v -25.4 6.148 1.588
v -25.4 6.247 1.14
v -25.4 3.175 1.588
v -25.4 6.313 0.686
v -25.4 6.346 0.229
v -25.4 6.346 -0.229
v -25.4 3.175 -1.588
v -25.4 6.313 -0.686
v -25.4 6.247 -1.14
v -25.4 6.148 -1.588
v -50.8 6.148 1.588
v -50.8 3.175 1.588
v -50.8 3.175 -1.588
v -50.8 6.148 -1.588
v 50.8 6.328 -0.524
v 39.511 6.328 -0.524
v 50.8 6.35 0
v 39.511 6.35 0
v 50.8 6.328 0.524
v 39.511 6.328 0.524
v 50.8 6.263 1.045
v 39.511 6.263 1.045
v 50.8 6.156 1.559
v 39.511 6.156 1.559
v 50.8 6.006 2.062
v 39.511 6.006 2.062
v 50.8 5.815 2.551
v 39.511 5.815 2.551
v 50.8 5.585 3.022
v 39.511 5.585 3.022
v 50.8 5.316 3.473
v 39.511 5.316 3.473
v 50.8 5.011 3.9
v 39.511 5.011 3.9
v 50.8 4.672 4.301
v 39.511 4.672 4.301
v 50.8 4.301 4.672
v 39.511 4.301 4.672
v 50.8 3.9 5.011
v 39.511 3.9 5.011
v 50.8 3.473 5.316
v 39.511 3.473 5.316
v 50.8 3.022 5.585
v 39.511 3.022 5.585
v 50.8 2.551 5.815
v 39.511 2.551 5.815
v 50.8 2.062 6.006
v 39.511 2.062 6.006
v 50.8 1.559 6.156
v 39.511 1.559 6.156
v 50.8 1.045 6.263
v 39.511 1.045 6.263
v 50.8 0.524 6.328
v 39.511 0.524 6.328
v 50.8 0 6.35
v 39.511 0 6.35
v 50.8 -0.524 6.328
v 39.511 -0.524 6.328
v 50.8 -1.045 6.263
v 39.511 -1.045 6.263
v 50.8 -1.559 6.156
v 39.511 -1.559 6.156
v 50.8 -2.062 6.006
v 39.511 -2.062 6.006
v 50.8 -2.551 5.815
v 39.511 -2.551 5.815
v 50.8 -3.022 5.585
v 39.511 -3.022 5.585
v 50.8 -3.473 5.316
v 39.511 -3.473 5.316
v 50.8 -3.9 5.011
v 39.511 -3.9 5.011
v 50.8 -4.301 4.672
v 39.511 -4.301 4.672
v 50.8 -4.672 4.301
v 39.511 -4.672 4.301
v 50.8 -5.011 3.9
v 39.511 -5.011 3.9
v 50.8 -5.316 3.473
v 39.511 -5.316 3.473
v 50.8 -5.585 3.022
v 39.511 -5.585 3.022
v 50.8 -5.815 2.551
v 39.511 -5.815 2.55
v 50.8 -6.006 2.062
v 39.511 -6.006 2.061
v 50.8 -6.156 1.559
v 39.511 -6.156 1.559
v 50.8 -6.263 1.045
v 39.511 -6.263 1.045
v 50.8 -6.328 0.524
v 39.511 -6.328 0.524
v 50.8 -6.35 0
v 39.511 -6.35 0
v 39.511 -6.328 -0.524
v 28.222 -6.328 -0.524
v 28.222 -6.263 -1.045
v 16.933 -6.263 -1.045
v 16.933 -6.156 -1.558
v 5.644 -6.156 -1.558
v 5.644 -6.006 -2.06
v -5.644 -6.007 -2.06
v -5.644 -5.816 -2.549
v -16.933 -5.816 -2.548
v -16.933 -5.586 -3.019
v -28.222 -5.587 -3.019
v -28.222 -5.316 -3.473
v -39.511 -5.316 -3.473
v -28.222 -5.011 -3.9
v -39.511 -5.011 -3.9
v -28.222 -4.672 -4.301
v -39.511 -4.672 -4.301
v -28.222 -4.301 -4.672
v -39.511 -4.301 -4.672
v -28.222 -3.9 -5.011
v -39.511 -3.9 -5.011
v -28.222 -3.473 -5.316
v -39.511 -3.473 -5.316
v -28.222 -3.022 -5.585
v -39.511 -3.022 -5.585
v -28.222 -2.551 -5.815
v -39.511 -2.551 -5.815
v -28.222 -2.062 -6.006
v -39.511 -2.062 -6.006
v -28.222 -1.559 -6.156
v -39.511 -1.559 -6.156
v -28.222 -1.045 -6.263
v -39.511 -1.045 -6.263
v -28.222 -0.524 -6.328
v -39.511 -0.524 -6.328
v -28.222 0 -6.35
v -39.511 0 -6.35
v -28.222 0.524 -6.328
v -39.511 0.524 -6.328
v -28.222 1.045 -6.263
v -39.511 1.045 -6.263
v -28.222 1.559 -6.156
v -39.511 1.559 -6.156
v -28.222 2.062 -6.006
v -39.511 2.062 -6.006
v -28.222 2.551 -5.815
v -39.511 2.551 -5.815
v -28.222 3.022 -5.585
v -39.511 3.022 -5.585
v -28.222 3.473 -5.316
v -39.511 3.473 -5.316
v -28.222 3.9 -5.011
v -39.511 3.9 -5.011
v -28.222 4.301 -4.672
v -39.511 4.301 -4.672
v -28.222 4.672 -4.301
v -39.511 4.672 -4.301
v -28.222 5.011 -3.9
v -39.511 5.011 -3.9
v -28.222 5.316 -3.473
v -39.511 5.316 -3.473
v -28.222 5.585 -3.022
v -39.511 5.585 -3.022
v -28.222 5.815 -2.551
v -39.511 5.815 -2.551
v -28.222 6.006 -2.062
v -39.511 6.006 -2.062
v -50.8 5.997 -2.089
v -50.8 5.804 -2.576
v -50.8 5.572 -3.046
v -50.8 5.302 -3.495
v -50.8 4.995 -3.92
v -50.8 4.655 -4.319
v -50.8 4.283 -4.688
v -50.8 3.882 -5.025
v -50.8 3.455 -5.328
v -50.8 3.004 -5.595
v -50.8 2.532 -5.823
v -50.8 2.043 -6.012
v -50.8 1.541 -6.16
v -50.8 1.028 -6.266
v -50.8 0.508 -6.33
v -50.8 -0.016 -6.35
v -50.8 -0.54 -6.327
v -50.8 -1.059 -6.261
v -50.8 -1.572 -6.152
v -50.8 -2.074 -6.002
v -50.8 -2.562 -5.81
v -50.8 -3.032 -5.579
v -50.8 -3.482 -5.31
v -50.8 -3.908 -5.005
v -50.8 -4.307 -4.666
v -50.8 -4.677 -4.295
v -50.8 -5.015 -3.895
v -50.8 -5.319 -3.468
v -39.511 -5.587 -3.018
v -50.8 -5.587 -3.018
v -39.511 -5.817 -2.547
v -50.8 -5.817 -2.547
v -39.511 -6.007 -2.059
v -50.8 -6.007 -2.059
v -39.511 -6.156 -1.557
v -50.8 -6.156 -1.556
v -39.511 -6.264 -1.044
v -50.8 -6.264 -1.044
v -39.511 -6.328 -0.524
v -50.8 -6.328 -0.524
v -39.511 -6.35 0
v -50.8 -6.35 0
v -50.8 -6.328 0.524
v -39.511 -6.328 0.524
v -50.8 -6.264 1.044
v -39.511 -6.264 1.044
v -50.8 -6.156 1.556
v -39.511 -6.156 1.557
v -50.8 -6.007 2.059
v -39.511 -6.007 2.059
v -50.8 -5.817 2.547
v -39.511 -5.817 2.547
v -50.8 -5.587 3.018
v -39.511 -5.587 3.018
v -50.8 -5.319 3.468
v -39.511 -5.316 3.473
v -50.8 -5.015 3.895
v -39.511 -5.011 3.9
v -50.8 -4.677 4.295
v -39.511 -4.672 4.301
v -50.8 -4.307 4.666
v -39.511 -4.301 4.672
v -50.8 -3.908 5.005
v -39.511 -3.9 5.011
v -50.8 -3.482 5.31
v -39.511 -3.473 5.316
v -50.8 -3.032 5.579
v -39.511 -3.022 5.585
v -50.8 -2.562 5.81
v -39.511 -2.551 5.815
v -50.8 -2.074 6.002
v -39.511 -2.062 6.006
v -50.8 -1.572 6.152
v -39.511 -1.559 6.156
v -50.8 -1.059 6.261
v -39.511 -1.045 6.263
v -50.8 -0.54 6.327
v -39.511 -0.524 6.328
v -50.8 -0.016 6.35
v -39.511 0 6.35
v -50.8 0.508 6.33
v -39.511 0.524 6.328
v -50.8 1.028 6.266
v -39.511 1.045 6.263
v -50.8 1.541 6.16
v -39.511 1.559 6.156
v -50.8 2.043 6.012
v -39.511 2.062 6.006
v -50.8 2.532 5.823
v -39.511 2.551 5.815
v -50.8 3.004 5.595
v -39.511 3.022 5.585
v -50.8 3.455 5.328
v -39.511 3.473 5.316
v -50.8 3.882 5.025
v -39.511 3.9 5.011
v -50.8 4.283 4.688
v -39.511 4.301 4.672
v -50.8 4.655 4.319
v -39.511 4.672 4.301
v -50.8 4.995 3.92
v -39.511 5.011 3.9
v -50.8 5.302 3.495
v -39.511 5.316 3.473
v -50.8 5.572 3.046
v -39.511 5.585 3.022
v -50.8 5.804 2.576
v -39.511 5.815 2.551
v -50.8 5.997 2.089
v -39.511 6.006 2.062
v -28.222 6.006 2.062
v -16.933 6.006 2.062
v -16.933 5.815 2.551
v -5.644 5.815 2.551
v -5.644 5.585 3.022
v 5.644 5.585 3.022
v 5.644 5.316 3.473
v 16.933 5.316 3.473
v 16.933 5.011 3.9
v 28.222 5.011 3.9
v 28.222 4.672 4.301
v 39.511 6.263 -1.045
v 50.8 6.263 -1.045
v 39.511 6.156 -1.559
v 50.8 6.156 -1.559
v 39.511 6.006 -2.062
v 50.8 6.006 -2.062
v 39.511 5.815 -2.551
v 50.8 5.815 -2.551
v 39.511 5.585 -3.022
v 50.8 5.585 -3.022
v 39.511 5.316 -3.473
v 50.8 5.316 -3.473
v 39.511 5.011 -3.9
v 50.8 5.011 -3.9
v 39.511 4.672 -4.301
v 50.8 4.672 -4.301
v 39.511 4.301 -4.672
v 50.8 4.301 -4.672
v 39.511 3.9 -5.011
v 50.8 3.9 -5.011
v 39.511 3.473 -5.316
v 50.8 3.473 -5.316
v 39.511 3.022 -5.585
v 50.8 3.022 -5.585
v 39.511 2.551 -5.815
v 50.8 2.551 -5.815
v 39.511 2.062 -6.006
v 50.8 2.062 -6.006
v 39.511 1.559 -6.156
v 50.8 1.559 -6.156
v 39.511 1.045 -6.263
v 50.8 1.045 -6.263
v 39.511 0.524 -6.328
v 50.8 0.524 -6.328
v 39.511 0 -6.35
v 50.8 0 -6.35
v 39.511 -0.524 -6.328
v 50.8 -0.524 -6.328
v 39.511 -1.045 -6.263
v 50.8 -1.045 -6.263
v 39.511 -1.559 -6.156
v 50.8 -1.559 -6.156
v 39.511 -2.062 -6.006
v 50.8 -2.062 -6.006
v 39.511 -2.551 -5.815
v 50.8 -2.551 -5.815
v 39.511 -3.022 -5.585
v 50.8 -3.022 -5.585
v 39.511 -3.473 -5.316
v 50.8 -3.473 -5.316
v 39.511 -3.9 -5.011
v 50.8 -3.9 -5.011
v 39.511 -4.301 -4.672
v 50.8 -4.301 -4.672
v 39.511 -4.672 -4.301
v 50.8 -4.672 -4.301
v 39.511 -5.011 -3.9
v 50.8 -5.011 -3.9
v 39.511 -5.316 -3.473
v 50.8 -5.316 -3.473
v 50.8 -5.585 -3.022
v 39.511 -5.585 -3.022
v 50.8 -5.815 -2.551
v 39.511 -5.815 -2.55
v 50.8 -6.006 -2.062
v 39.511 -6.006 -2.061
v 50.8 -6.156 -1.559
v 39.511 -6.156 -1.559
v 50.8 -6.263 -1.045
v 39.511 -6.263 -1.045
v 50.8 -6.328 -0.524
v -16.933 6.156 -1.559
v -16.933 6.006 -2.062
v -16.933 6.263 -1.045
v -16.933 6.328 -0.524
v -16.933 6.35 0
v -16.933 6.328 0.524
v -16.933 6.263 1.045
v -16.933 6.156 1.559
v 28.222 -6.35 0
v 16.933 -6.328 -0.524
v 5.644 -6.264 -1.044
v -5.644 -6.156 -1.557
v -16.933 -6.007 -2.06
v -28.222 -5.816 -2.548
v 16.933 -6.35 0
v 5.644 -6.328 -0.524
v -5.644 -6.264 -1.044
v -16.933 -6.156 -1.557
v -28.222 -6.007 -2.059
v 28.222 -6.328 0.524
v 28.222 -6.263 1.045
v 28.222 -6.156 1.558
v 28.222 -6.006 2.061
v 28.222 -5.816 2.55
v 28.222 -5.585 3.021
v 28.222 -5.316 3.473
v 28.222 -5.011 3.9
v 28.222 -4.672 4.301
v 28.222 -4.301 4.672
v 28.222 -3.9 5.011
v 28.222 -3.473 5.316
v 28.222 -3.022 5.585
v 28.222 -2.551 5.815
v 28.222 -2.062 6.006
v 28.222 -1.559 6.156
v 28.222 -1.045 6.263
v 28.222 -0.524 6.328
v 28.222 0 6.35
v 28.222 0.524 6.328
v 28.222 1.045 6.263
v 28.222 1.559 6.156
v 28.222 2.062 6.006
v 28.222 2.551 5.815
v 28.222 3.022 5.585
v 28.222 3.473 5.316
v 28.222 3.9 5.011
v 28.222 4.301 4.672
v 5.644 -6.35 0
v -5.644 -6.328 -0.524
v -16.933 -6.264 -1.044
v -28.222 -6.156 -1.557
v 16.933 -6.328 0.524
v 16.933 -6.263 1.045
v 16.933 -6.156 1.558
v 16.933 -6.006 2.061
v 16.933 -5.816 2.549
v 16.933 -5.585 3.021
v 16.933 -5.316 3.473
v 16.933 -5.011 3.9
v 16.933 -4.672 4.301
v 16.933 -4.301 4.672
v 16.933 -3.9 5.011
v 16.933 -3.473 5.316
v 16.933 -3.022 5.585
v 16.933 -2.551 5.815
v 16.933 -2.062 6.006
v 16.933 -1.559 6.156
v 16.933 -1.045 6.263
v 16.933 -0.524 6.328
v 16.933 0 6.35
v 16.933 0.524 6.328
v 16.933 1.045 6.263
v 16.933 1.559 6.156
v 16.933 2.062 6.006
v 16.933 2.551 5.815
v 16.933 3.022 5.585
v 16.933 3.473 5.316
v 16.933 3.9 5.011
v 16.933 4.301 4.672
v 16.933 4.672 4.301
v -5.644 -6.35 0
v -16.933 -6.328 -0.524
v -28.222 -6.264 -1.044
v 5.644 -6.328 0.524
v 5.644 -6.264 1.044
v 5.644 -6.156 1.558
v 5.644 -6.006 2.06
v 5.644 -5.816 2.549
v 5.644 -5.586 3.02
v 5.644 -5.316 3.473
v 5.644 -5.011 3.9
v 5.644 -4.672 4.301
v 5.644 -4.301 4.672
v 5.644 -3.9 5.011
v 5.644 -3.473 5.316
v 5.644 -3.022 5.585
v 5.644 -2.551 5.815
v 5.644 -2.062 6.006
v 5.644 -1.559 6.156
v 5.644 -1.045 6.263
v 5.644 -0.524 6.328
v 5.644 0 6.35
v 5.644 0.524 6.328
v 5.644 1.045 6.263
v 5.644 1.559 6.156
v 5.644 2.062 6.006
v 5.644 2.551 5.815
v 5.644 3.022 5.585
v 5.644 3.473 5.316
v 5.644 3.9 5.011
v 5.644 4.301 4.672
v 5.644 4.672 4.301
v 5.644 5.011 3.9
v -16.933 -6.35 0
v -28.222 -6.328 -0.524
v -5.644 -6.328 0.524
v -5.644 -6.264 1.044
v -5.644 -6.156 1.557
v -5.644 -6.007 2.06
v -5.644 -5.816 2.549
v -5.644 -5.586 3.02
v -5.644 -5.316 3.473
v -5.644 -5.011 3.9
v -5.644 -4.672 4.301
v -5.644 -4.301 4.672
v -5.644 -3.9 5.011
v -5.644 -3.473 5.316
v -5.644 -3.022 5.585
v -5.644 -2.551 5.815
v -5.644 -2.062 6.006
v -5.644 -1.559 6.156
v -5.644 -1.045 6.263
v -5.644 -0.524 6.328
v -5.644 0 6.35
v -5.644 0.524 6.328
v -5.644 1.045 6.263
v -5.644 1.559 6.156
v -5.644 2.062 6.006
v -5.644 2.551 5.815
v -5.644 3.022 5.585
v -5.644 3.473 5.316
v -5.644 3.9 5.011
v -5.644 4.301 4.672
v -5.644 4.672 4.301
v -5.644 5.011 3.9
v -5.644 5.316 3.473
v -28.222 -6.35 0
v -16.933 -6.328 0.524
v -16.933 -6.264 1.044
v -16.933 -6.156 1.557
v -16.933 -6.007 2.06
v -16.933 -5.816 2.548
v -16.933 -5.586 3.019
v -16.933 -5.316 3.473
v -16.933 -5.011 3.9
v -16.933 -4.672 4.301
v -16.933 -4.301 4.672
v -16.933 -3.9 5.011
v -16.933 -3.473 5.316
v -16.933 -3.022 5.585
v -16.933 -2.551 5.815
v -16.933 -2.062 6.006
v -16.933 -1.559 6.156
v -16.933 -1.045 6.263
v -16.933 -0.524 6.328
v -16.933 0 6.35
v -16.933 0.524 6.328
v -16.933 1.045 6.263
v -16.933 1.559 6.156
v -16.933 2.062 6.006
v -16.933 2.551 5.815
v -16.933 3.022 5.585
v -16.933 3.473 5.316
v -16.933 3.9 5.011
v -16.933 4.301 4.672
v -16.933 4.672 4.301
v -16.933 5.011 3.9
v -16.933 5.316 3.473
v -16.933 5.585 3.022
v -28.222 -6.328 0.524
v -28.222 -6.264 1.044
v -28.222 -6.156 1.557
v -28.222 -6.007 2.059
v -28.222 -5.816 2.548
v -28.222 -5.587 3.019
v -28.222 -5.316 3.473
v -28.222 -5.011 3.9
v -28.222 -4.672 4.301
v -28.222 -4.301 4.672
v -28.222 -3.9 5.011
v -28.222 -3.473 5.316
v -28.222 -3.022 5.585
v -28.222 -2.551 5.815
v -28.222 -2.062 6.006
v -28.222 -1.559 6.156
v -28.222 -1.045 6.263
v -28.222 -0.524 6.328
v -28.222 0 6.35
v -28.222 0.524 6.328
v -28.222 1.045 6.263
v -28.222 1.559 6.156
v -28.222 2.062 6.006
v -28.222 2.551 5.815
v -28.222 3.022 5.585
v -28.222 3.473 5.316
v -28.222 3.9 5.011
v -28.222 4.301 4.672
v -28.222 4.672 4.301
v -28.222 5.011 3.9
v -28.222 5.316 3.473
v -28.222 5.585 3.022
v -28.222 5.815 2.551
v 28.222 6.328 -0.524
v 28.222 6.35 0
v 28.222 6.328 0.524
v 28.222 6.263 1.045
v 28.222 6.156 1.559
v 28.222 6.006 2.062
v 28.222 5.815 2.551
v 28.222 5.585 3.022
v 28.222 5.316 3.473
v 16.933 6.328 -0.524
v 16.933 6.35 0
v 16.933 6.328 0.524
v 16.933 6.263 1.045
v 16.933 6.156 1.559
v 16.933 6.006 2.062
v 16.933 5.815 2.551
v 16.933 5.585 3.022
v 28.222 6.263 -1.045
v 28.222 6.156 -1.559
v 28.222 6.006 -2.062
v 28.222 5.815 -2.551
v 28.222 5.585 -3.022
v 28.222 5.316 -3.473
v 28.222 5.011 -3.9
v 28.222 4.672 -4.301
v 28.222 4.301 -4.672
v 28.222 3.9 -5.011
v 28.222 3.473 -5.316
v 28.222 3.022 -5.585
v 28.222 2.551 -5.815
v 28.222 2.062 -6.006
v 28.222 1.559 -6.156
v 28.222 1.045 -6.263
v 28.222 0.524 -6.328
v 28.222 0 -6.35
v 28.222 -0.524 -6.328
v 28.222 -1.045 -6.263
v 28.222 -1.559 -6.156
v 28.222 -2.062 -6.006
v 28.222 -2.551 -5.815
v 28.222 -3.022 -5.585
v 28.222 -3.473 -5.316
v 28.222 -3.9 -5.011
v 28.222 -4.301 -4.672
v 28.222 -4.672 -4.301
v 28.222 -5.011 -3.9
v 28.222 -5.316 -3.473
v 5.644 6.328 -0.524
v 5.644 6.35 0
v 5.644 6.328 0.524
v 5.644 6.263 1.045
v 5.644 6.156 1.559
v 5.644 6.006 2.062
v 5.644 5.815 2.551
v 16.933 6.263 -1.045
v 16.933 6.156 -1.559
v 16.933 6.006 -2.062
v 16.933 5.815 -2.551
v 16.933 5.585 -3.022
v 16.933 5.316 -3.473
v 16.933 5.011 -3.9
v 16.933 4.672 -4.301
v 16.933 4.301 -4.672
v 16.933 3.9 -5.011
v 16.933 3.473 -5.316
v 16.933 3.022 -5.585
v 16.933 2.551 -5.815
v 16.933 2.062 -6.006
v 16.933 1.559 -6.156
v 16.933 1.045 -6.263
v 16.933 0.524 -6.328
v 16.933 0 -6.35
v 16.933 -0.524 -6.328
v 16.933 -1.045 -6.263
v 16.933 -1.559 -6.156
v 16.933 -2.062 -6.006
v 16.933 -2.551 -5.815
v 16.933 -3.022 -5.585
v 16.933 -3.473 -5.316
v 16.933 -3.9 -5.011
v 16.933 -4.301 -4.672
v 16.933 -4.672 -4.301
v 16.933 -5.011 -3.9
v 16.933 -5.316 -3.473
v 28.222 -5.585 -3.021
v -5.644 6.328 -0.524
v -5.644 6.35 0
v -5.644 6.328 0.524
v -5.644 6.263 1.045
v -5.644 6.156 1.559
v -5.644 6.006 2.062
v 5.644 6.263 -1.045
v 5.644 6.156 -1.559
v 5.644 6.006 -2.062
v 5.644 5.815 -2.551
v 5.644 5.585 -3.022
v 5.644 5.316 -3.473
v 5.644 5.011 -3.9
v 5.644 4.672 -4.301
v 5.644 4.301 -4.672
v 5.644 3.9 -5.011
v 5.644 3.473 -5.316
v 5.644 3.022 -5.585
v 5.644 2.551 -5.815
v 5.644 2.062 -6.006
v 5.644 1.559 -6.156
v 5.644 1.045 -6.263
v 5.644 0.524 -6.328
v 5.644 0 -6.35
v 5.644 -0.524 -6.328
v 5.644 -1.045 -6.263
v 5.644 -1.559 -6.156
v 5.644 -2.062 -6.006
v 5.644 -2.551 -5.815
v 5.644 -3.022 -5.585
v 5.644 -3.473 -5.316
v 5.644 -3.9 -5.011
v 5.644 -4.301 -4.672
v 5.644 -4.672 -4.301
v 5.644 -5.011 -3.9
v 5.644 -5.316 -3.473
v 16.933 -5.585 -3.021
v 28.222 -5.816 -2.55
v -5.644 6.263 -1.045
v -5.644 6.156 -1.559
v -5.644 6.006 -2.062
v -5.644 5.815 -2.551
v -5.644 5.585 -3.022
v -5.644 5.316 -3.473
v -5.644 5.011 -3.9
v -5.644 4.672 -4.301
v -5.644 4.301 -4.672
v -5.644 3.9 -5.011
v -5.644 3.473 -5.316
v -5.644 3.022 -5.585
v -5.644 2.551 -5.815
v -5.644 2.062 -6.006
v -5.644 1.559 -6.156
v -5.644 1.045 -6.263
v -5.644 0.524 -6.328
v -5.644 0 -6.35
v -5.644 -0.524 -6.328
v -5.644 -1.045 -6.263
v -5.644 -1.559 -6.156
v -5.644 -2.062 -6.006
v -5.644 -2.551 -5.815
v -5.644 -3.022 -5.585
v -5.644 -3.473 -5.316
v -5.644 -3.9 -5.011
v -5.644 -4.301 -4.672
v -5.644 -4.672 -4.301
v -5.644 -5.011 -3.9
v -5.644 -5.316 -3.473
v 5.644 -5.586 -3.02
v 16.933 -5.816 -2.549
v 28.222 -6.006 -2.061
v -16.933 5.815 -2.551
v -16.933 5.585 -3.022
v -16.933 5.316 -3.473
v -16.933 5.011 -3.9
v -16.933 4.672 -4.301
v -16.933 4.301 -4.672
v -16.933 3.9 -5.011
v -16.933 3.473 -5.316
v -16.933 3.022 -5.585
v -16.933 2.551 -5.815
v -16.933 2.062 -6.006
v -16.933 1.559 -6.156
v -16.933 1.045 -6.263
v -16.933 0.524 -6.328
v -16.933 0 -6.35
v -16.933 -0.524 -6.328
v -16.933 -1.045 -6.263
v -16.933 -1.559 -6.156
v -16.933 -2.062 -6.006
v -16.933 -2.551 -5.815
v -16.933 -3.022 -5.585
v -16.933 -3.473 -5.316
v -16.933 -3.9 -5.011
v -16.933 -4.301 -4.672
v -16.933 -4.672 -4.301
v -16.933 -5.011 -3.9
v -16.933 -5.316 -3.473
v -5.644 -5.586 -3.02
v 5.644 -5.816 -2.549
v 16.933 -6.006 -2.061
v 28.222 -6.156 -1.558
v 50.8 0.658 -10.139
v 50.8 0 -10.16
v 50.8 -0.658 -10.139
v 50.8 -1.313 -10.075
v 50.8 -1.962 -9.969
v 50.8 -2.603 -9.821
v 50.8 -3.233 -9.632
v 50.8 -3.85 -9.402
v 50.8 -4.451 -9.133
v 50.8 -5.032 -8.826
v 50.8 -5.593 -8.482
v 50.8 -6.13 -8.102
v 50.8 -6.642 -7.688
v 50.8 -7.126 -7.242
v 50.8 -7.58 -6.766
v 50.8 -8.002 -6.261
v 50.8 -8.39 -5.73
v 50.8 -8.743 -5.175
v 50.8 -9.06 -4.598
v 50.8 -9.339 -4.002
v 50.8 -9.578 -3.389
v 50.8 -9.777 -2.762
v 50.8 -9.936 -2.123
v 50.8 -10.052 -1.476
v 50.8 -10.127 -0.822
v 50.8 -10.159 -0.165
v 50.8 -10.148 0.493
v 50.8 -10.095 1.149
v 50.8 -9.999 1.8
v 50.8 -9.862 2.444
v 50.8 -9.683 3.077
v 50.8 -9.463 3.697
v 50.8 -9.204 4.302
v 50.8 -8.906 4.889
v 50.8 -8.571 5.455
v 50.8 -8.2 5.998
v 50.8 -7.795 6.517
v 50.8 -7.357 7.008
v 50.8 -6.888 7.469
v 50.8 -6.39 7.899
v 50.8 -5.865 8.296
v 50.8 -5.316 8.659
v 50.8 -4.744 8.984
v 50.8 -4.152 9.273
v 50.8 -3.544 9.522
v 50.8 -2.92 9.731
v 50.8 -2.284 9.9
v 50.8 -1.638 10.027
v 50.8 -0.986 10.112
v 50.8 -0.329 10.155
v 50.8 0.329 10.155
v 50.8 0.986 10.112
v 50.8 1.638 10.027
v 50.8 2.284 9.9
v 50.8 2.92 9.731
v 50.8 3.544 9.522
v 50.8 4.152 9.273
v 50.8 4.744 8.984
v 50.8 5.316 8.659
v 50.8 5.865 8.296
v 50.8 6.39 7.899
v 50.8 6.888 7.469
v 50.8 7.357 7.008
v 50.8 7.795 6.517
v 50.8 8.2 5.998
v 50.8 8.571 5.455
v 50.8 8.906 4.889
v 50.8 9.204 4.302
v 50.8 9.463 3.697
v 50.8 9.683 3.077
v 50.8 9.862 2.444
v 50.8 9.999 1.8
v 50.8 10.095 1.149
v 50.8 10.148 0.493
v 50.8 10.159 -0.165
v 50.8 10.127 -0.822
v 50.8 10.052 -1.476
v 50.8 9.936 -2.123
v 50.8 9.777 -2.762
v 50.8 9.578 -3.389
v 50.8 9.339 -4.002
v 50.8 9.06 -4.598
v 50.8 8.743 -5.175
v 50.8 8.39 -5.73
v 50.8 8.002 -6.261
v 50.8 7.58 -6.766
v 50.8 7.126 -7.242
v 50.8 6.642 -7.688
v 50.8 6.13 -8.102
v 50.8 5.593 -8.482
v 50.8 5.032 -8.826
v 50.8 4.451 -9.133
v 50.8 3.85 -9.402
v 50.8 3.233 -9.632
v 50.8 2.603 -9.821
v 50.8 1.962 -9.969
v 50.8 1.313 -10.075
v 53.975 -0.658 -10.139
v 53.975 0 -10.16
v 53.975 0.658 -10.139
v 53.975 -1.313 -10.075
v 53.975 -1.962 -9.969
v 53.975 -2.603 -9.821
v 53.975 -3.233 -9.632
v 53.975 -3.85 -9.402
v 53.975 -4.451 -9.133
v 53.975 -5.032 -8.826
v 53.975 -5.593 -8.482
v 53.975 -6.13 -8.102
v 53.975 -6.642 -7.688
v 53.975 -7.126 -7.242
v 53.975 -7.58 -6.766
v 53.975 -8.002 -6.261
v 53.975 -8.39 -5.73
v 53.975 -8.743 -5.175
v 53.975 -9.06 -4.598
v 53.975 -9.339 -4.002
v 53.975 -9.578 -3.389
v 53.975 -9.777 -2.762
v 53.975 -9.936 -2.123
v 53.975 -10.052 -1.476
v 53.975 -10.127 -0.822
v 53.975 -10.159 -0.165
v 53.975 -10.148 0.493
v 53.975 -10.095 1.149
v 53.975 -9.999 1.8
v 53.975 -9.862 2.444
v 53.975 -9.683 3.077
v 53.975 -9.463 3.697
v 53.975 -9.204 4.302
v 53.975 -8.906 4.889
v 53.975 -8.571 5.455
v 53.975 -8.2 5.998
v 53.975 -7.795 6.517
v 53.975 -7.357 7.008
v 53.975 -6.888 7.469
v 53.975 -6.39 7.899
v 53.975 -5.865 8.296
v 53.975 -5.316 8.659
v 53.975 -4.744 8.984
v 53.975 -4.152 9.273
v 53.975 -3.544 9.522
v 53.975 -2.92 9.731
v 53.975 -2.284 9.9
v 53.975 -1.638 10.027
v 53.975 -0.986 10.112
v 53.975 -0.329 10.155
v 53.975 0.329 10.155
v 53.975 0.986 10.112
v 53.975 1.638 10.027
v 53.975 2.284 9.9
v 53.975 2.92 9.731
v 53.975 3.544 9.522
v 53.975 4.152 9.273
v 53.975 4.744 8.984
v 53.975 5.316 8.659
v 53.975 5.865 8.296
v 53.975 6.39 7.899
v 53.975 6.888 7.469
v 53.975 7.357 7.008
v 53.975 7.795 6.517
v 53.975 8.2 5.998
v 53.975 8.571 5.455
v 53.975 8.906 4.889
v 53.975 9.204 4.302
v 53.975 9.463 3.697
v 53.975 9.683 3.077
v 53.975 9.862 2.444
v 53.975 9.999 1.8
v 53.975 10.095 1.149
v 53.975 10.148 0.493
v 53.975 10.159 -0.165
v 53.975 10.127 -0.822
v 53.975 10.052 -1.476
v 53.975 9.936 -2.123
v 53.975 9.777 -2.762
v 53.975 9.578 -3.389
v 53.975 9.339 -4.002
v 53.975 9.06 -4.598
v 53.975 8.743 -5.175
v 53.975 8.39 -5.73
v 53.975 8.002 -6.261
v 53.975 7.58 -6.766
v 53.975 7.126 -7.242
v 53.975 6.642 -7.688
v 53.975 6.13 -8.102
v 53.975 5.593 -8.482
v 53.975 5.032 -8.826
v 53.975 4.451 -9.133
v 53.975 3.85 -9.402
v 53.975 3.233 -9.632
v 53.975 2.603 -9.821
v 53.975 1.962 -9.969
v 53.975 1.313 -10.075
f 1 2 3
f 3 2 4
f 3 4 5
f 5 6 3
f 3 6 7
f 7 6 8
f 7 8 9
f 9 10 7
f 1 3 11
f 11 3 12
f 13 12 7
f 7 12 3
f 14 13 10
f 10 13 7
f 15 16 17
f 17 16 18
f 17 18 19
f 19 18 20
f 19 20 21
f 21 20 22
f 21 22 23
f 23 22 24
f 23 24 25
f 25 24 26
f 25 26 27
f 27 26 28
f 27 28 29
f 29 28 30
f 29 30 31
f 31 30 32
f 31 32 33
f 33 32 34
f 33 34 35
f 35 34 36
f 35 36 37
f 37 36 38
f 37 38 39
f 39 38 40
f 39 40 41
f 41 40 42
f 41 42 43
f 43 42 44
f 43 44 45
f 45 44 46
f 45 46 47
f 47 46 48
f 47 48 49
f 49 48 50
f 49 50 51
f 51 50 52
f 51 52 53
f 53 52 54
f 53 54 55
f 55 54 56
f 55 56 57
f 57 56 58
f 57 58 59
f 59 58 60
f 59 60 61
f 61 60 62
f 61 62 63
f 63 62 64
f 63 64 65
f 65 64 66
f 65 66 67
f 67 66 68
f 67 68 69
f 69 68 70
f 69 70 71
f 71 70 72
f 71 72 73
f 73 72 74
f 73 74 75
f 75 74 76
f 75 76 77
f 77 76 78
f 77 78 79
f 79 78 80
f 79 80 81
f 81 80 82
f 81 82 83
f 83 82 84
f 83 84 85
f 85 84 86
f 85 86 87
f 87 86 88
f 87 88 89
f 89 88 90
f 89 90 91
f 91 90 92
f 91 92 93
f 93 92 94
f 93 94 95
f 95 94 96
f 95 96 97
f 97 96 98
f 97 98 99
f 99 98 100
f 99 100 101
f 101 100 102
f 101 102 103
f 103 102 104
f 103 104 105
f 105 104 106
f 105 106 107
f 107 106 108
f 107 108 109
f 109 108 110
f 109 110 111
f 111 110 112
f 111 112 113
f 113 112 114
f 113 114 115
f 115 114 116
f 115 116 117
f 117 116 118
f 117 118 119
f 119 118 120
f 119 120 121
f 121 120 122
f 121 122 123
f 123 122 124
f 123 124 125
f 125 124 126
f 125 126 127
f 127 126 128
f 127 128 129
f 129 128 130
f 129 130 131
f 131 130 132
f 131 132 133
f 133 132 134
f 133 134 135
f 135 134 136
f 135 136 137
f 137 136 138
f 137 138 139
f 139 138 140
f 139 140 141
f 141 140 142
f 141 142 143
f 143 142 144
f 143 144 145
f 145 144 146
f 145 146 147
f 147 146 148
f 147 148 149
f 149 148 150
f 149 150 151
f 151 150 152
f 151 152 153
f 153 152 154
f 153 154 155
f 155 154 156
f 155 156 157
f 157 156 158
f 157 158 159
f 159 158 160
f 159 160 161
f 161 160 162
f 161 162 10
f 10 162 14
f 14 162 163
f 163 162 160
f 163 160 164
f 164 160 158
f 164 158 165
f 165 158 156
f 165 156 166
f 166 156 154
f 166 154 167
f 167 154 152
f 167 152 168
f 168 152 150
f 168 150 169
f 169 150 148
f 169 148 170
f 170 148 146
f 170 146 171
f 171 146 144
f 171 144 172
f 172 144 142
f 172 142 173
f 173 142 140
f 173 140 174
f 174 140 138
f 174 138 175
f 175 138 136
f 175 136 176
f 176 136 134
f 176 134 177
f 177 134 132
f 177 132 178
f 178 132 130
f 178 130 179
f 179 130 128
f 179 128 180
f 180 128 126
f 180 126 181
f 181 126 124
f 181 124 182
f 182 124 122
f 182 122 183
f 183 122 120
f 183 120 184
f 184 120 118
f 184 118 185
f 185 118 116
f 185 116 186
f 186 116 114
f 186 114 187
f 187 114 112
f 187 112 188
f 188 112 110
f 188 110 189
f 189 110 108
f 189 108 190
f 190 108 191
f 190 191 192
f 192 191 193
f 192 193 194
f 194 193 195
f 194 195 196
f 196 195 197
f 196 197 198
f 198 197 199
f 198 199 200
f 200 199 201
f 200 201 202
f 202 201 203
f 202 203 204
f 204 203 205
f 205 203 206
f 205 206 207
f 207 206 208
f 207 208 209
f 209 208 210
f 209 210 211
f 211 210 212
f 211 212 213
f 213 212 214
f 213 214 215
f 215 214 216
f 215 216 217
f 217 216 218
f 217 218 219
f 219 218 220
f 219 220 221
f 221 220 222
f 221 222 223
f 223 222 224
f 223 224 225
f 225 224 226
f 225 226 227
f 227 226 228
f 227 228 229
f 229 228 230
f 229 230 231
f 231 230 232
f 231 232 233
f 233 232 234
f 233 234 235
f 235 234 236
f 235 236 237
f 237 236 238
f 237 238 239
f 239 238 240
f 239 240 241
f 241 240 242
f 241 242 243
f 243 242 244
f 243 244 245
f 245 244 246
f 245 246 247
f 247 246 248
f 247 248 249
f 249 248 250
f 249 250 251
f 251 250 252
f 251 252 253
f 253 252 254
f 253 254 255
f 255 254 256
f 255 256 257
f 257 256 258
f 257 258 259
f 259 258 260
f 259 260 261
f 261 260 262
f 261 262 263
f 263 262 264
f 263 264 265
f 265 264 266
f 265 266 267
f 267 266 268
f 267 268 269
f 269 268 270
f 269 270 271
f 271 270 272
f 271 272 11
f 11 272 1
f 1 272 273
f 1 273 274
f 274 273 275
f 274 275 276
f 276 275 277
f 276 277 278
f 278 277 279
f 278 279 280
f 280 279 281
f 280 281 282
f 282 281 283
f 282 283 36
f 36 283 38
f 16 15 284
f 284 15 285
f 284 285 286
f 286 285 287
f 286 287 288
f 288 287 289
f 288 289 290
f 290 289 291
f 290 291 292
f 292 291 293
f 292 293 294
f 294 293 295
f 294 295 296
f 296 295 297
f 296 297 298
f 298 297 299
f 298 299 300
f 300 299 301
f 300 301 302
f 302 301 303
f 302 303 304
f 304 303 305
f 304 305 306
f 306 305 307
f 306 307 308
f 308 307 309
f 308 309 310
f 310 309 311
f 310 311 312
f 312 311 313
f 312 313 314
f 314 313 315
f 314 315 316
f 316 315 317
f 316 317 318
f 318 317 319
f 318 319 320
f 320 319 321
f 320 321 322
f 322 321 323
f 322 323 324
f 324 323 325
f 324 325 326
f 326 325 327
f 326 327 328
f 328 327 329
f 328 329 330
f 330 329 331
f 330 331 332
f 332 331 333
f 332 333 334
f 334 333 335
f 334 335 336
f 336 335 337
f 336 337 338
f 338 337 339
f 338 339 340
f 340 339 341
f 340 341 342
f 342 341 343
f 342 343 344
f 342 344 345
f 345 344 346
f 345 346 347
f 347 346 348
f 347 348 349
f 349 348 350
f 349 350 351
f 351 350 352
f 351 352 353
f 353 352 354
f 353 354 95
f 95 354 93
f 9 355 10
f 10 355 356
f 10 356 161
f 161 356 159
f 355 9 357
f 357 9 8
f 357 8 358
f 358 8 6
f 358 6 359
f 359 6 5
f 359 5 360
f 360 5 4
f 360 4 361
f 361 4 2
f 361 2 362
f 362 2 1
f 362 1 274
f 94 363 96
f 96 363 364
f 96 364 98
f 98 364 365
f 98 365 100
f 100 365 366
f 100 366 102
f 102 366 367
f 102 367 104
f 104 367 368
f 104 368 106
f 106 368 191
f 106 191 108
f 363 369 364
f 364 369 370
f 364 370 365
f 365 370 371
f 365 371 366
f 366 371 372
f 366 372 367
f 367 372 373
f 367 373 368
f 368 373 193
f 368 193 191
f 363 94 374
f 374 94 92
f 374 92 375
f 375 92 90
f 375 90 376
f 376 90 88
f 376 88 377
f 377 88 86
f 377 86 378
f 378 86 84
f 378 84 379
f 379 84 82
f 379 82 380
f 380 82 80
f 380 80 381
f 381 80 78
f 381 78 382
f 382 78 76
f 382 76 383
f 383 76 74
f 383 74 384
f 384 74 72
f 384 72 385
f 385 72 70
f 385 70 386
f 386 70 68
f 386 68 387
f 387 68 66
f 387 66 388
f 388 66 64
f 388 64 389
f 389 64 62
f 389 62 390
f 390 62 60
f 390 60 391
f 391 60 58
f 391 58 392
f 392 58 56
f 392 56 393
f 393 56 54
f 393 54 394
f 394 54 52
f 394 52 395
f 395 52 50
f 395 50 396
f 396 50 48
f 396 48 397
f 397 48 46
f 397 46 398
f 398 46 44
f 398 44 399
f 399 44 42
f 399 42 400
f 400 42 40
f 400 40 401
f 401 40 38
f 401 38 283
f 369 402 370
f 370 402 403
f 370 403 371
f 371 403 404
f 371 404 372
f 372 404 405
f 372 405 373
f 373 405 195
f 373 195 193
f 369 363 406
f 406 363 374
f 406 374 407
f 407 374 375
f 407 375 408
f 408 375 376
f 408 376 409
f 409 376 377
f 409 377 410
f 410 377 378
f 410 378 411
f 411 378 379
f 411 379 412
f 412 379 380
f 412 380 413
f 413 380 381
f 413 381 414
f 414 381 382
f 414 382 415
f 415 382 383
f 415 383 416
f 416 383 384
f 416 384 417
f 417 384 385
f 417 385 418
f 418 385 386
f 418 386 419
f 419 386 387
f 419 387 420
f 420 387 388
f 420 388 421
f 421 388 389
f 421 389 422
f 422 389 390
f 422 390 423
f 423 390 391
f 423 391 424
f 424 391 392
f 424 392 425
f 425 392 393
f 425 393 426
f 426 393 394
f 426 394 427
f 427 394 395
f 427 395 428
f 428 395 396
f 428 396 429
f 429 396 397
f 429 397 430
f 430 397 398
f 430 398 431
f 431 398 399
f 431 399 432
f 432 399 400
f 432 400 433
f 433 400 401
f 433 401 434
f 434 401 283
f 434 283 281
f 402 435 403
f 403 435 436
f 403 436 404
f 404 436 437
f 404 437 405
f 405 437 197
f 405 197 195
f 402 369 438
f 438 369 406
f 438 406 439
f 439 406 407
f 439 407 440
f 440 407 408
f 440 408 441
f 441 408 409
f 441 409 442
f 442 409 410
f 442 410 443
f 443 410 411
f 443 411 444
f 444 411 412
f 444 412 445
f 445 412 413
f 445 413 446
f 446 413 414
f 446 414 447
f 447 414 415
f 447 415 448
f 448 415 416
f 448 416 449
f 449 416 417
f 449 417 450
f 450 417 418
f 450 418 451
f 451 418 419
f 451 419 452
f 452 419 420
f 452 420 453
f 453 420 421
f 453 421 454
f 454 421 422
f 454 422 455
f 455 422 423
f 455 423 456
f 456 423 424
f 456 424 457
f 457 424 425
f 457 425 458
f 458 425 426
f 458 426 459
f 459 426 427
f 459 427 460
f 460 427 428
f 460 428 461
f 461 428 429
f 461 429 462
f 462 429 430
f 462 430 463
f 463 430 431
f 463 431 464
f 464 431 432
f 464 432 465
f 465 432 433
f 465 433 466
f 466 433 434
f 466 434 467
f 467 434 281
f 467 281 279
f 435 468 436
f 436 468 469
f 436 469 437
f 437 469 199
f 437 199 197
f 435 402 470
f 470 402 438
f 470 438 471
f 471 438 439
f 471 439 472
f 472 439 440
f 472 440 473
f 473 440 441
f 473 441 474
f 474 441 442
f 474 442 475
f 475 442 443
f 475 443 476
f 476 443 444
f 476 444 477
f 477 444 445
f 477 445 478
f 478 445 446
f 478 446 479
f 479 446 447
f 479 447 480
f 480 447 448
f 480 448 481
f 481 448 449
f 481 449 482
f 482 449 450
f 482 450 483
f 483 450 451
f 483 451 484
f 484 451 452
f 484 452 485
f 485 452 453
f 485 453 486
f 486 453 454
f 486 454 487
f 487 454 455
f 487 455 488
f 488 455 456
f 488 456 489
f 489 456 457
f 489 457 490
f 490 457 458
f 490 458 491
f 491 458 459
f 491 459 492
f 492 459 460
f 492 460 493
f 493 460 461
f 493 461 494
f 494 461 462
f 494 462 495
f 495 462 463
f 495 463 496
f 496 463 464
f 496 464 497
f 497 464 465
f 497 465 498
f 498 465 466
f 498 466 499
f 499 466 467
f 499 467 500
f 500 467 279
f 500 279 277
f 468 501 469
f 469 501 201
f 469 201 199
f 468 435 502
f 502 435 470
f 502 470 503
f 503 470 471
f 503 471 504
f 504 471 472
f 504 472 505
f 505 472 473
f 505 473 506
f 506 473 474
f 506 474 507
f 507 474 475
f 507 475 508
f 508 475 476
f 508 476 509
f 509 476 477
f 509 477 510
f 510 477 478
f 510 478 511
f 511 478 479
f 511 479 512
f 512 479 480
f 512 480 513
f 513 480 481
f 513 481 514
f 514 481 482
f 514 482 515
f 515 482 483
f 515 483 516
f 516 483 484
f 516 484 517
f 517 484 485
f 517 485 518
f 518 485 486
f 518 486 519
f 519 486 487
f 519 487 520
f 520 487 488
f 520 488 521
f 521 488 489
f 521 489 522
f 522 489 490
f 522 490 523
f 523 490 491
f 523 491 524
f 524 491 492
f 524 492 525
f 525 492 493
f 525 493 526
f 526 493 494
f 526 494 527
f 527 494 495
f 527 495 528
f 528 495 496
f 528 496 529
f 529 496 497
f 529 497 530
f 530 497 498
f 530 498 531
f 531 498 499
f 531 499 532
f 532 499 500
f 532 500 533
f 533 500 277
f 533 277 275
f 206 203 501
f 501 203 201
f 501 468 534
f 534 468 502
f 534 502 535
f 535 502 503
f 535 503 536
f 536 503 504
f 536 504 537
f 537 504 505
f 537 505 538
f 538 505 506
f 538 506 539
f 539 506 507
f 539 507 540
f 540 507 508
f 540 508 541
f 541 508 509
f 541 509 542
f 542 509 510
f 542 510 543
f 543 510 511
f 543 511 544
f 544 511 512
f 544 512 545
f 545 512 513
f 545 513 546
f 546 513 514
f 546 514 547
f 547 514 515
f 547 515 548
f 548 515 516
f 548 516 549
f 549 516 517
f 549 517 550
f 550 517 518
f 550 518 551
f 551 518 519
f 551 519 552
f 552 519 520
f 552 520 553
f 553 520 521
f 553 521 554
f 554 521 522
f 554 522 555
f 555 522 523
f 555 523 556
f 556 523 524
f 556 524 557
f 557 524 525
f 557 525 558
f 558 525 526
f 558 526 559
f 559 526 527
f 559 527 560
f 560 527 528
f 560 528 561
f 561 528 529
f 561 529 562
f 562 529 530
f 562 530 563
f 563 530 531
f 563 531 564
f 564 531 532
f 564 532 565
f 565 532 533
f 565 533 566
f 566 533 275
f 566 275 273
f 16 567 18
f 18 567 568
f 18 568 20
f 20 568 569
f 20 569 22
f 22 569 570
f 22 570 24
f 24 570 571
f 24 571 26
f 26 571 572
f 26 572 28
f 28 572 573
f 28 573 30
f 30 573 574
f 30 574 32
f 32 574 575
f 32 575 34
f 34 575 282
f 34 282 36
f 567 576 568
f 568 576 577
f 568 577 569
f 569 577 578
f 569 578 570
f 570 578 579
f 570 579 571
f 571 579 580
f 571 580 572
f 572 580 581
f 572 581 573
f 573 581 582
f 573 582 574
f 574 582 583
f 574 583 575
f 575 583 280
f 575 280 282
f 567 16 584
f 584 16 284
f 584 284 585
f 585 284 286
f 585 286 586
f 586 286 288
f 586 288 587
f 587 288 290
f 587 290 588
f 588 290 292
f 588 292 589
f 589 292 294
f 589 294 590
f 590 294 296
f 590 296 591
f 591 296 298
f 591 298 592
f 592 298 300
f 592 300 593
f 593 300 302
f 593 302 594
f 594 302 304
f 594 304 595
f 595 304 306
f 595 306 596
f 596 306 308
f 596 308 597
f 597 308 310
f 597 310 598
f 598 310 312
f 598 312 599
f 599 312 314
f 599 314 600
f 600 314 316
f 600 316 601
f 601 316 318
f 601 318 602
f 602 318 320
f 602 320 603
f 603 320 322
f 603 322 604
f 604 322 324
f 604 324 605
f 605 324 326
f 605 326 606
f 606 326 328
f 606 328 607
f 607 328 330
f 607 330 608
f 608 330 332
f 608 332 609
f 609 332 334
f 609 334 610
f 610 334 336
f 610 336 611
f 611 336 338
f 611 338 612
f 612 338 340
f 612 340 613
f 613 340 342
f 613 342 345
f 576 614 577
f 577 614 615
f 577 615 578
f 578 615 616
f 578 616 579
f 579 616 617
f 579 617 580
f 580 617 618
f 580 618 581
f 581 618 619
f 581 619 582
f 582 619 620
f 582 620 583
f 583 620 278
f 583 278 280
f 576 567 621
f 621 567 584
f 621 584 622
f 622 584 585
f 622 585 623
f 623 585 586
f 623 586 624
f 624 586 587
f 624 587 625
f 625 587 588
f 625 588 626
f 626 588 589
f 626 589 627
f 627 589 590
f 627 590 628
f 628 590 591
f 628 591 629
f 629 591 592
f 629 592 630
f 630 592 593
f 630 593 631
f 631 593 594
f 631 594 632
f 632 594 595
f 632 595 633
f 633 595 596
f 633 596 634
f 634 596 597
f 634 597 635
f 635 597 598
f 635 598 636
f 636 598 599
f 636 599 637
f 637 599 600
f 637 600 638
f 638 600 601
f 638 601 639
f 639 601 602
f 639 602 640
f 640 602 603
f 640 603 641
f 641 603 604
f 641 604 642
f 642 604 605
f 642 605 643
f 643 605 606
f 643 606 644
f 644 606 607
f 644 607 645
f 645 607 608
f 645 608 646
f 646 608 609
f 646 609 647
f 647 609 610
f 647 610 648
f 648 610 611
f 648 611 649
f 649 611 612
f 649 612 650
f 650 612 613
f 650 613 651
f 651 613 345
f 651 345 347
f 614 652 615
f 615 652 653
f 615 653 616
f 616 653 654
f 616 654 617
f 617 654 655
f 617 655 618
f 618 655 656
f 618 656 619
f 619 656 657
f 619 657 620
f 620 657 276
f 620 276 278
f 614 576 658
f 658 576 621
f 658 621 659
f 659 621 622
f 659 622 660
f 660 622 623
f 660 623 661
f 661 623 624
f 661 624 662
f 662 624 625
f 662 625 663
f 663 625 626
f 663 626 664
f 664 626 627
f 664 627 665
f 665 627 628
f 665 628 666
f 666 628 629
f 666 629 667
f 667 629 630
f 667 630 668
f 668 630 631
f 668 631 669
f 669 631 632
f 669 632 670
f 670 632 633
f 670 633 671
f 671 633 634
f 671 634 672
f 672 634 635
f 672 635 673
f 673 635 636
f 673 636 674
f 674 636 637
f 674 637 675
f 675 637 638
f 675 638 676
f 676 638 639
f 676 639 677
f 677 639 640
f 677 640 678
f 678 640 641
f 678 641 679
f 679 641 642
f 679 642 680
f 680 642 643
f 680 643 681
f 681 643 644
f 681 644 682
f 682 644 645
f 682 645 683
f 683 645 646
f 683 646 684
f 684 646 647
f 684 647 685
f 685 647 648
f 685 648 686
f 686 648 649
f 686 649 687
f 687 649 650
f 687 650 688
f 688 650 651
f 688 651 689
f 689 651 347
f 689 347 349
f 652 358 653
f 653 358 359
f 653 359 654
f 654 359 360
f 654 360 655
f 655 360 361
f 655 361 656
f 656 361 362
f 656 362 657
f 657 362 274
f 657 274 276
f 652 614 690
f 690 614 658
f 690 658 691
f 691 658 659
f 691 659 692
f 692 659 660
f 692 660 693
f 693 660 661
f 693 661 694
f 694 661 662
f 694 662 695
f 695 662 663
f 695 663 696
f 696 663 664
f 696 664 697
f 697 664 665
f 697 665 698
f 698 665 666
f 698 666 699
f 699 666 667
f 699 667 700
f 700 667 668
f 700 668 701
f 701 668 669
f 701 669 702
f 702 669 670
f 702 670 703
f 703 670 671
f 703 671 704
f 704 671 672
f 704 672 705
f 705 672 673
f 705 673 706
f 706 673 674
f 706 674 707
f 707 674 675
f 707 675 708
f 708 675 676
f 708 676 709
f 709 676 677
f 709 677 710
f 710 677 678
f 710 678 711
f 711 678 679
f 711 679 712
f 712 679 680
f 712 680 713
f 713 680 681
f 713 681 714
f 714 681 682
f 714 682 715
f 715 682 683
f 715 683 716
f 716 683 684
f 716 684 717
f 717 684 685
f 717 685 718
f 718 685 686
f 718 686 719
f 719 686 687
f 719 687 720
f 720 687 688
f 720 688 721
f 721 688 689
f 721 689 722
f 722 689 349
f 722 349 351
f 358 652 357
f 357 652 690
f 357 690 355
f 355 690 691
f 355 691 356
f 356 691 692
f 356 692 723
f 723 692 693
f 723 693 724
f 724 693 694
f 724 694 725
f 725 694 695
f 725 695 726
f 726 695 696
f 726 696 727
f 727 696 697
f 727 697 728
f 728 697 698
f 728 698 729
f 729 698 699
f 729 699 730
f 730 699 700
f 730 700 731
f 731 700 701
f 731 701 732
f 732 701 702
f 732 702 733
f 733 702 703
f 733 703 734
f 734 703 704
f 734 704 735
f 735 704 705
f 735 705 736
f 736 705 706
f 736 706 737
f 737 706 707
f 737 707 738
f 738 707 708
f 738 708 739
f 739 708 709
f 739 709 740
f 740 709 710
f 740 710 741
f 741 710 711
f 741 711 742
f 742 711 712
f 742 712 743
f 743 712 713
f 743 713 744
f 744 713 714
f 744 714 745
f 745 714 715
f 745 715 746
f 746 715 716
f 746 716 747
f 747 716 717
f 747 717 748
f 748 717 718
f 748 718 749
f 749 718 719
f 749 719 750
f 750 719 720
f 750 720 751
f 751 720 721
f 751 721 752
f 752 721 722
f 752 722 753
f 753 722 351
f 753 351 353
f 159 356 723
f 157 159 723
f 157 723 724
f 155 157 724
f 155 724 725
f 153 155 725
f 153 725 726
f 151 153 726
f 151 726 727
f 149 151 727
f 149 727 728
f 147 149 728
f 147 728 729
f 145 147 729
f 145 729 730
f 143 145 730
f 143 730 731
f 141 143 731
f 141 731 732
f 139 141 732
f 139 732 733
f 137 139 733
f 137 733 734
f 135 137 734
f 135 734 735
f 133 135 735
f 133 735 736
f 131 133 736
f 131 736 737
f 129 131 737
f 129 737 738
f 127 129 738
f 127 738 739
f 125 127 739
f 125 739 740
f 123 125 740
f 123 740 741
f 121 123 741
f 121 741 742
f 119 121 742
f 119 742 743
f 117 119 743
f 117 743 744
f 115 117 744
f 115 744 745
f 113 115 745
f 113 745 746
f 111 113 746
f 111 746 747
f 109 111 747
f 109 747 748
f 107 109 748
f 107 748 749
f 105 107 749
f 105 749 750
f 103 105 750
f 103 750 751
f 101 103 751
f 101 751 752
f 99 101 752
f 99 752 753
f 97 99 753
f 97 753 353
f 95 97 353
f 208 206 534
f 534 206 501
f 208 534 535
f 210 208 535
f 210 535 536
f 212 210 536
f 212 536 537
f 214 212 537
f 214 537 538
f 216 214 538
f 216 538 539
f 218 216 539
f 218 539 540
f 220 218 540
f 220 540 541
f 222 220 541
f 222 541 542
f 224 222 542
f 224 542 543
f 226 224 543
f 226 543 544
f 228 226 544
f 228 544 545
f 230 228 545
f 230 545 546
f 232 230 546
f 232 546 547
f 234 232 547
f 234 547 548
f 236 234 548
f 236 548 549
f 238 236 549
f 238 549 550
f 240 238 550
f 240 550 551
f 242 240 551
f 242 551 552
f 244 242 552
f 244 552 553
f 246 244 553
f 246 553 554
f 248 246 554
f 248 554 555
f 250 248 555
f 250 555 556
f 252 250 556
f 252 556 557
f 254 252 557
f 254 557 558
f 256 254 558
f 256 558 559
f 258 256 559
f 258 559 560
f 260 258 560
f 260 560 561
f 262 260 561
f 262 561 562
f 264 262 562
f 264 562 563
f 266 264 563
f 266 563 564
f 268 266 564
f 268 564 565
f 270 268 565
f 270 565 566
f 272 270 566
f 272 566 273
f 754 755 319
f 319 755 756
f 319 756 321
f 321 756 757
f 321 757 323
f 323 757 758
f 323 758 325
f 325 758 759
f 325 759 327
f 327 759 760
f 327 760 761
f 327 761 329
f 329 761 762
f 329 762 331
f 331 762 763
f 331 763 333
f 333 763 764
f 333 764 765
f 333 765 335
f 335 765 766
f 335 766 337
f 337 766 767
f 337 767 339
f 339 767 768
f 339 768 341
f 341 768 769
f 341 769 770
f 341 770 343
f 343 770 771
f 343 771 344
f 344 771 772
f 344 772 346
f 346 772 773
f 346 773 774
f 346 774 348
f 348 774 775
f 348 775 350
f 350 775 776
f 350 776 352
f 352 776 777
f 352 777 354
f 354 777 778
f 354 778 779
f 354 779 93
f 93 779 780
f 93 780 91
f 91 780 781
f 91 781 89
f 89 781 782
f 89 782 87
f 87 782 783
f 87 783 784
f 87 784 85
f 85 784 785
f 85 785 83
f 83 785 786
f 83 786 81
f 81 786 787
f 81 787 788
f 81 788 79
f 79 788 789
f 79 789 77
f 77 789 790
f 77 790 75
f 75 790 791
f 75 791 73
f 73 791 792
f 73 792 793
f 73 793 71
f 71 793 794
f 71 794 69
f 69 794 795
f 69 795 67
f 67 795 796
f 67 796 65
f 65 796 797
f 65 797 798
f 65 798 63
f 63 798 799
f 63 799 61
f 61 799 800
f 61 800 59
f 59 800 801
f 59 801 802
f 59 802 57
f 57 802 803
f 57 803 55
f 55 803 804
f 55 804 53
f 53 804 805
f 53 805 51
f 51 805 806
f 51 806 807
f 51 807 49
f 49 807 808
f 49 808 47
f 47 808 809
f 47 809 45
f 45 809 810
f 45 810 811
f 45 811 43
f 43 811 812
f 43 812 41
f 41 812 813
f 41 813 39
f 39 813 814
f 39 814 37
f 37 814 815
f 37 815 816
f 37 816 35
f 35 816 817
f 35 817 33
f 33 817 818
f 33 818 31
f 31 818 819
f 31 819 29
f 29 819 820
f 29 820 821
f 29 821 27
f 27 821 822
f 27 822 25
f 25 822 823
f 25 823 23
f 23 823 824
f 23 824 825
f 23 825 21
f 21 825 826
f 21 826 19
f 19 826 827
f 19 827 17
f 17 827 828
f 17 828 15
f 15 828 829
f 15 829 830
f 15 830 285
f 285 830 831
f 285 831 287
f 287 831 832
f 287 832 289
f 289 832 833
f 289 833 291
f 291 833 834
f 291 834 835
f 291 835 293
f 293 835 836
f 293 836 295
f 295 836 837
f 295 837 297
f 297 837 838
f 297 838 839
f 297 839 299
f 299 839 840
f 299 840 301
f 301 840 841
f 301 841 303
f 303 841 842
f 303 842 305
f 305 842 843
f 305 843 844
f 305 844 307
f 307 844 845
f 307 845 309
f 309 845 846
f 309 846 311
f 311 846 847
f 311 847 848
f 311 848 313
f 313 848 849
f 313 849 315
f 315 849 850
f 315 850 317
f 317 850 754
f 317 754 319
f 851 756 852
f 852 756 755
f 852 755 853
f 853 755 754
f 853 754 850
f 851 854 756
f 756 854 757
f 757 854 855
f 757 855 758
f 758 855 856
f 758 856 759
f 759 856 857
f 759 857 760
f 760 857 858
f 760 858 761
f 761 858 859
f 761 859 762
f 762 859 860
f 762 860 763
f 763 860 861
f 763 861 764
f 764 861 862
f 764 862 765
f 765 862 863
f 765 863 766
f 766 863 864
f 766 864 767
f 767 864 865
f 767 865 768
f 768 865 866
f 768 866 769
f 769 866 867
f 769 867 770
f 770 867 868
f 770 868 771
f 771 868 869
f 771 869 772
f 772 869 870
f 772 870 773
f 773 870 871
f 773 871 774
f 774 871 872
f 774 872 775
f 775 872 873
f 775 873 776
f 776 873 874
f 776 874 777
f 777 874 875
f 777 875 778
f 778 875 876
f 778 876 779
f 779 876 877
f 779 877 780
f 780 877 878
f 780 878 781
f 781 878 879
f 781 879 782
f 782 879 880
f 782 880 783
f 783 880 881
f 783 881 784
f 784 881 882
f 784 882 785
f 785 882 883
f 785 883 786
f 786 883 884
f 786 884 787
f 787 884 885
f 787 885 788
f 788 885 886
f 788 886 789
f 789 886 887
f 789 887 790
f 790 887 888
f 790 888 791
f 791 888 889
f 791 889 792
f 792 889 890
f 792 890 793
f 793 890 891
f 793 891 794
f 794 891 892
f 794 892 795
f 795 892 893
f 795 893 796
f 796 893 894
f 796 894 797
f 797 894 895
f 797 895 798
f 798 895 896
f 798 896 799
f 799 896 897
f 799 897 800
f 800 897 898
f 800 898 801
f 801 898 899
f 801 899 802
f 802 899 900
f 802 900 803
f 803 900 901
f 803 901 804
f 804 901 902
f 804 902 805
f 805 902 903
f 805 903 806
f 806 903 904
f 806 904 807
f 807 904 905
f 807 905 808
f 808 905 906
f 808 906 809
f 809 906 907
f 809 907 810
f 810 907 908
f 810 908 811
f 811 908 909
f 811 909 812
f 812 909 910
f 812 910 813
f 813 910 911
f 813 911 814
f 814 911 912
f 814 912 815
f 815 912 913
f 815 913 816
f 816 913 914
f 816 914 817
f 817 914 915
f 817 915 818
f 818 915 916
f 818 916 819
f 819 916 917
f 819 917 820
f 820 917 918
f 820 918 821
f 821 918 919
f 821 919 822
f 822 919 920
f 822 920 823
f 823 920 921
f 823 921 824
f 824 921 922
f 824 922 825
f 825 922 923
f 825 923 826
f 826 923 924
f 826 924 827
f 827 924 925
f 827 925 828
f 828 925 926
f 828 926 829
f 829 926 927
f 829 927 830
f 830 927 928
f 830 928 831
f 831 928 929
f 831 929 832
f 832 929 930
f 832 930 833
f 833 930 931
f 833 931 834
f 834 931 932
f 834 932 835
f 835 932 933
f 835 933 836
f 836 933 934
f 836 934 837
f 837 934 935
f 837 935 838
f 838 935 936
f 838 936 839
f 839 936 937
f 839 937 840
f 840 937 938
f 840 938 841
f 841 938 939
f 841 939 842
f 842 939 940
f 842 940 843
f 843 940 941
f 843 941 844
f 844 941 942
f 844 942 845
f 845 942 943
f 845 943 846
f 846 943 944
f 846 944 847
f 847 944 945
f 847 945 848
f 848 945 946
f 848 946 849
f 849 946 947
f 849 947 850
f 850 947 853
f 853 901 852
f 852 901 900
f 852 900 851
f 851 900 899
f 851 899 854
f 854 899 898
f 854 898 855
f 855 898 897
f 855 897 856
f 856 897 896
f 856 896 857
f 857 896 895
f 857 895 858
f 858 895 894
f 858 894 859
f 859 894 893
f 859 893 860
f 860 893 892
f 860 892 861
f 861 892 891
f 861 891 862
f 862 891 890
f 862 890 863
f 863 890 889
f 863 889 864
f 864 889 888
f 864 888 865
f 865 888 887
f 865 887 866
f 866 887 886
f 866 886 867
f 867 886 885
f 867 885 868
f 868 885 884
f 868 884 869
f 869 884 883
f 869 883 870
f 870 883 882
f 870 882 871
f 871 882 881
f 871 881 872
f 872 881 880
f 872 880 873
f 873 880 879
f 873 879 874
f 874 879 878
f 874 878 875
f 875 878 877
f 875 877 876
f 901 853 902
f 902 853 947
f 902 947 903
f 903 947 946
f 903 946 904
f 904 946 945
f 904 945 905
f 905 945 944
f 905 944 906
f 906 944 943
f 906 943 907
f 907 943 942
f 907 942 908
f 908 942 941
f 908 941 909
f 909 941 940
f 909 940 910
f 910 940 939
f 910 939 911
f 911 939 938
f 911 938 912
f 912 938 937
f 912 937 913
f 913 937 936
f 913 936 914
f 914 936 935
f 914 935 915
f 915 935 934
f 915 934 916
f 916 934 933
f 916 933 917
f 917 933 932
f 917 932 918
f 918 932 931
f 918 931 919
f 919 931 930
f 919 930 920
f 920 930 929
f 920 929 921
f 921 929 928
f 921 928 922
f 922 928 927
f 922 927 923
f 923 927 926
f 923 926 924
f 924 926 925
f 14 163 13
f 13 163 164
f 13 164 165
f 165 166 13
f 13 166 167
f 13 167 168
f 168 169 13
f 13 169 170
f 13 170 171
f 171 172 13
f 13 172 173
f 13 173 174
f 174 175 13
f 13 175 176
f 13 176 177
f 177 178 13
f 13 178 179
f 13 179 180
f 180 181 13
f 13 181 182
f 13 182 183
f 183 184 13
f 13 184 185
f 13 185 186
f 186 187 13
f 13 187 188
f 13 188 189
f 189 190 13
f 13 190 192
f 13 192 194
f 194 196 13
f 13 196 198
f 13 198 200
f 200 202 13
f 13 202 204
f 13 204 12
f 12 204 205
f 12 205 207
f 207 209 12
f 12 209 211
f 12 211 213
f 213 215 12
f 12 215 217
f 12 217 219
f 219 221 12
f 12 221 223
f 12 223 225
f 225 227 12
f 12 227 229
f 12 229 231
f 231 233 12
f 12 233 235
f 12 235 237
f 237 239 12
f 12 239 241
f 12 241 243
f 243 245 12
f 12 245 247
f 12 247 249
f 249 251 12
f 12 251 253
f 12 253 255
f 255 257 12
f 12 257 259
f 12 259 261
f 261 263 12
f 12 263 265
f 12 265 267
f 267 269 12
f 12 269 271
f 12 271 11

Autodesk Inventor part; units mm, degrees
ref_plane "YZ Plane" through (0, 0, 0) normal (1, 0, 0) x (0, 1, 0)
ref_plane "XZ Plane" through (0, 0, 0) normal (0, 1, 0) x (-1, 0, 0)
ref_plane "XY Plane" through (0, 0, 0) normal (0, 0, 1) x (1, 0, 0)
sketch "Sketch1" plane through (0, 0, 0) normal (1, 0, 0) x (0, 1, 0)
  circle A0 centre (0, 0) radius 6.35
  dimension "d0" = 12.7
extrude "Extrusion1" add sketch "Sketch1" along normal mid plane 101.6
sketch "Sketch2" plane through (50.8, 0, 0) normal (1, 0, 0) x (0, 0, -1)
  circle A0 centre (0, 0) radius 10.16
  dimension "d3" = 20.32
extrude "Extrusion2" add sketch "Sketch2" along normal blind 3.175
sketch "Sketch3" plane through (-50.8, 0, 0) normal (-1, 0, 0) x (0, 0, 1)
  line L0 (-1.5875, 3.175) -> (-1.5875, 9.525)
  line L1 (-1.5875, 9.525) -> (1.5875, 9.525)
  line L2 (1.5875, 9.525) -> (1.5875, 3.175)
  line L3 (1.5875, 3.175) -> (-1.5875, 3.175)
  circle A0 centre (0, 0) radius 6.35 projected
  line L4 (-1.5875, 3.175) -> (1.5875, 9.525) construction
  line L5 (-1.5875, 9.525) -> (1.5875, 3.175) construction
  point P0 (0, 6.35)
  dimension "d6" = 6.35
  dimension "d7" = 3.175
extrude "Extrusion3" cut sketch "Sketch3" against normal blind 25.4 contours L0 A0 L2 L3 | L0 L1 L2 A0 picked at (-0.1781, 4.2258)
sketch "Sketch4" plane through (-50.8, 3.175, 1.5875) normal (0, 0, -1) x (-1, 0, 0)
  point P0 (-50.8, -3.175)
properties part number "handle insert"
